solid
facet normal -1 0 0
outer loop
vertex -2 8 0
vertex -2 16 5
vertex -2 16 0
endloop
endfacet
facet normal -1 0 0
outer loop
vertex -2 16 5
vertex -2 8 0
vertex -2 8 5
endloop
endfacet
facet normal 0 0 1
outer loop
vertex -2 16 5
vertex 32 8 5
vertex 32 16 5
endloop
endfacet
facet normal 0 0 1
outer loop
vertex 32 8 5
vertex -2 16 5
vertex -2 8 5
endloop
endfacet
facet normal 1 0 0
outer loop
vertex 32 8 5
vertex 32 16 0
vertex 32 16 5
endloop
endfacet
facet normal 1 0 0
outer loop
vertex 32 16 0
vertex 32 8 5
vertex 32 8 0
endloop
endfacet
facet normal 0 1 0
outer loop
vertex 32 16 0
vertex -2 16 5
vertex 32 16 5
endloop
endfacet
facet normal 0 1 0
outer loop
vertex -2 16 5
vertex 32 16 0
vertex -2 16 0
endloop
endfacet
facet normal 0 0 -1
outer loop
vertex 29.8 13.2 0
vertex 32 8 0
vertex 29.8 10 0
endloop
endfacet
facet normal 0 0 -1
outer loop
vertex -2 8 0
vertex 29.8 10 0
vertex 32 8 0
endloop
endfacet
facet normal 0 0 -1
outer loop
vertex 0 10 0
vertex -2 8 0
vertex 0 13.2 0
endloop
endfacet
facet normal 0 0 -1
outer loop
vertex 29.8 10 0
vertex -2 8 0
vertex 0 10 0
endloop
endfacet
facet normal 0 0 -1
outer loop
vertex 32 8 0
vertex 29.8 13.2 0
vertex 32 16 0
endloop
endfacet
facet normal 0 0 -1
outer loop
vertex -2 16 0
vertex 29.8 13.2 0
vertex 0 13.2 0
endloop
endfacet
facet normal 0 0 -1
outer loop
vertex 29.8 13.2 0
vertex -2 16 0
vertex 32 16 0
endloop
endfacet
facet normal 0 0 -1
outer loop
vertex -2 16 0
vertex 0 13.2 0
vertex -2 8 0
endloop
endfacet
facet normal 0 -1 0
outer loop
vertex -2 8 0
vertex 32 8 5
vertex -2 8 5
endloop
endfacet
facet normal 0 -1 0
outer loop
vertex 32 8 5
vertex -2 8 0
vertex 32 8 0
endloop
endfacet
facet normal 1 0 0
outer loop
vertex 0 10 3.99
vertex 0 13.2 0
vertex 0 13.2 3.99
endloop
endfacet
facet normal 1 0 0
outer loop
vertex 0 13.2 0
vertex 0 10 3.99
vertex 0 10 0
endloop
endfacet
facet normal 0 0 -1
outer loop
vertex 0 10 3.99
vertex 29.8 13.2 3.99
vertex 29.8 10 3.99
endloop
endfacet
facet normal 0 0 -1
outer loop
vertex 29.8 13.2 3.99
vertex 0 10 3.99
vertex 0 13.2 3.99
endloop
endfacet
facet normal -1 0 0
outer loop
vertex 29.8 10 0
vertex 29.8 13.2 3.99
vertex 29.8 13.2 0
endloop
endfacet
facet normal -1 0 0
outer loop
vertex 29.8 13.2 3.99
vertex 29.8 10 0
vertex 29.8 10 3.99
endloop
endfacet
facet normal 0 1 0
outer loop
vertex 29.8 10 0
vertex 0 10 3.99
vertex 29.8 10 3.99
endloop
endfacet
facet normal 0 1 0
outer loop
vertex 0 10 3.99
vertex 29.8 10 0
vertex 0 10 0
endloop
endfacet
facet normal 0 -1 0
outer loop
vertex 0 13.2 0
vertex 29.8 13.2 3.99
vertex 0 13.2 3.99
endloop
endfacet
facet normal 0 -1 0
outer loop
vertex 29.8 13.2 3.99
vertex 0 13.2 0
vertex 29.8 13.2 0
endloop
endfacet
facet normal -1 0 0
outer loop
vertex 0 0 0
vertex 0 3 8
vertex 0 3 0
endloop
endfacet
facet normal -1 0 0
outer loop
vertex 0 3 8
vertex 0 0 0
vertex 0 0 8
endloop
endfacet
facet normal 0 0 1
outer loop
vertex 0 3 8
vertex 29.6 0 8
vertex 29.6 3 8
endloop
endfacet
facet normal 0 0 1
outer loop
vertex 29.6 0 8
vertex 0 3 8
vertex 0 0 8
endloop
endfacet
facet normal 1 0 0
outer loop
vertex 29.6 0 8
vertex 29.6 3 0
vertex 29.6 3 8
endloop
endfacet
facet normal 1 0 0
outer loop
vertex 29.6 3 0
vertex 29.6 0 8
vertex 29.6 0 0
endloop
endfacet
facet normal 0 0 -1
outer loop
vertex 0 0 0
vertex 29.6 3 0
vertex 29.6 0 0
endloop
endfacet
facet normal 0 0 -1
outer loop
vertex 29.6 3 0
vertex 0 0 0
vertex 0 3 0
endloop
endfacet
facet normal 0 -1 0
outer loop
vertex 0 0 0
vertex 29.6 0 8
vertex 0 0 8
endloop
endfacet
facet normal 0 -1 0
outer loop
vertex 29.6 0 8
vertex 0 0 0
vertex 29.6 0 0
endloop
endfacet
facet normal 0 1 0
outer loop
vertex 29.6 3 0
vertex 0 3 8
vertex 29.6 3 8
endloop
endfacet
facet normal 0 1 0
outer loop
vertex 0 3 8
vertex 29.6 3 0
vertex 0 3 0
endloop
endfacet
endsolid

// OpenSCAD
//prueba
cube([29.6,3,8]);
difference(){
translate([-2,8,0])
    cube([34,8,5]);
translate([0,10,-0.01])
    cube([29.8,3.2,4]);
}
